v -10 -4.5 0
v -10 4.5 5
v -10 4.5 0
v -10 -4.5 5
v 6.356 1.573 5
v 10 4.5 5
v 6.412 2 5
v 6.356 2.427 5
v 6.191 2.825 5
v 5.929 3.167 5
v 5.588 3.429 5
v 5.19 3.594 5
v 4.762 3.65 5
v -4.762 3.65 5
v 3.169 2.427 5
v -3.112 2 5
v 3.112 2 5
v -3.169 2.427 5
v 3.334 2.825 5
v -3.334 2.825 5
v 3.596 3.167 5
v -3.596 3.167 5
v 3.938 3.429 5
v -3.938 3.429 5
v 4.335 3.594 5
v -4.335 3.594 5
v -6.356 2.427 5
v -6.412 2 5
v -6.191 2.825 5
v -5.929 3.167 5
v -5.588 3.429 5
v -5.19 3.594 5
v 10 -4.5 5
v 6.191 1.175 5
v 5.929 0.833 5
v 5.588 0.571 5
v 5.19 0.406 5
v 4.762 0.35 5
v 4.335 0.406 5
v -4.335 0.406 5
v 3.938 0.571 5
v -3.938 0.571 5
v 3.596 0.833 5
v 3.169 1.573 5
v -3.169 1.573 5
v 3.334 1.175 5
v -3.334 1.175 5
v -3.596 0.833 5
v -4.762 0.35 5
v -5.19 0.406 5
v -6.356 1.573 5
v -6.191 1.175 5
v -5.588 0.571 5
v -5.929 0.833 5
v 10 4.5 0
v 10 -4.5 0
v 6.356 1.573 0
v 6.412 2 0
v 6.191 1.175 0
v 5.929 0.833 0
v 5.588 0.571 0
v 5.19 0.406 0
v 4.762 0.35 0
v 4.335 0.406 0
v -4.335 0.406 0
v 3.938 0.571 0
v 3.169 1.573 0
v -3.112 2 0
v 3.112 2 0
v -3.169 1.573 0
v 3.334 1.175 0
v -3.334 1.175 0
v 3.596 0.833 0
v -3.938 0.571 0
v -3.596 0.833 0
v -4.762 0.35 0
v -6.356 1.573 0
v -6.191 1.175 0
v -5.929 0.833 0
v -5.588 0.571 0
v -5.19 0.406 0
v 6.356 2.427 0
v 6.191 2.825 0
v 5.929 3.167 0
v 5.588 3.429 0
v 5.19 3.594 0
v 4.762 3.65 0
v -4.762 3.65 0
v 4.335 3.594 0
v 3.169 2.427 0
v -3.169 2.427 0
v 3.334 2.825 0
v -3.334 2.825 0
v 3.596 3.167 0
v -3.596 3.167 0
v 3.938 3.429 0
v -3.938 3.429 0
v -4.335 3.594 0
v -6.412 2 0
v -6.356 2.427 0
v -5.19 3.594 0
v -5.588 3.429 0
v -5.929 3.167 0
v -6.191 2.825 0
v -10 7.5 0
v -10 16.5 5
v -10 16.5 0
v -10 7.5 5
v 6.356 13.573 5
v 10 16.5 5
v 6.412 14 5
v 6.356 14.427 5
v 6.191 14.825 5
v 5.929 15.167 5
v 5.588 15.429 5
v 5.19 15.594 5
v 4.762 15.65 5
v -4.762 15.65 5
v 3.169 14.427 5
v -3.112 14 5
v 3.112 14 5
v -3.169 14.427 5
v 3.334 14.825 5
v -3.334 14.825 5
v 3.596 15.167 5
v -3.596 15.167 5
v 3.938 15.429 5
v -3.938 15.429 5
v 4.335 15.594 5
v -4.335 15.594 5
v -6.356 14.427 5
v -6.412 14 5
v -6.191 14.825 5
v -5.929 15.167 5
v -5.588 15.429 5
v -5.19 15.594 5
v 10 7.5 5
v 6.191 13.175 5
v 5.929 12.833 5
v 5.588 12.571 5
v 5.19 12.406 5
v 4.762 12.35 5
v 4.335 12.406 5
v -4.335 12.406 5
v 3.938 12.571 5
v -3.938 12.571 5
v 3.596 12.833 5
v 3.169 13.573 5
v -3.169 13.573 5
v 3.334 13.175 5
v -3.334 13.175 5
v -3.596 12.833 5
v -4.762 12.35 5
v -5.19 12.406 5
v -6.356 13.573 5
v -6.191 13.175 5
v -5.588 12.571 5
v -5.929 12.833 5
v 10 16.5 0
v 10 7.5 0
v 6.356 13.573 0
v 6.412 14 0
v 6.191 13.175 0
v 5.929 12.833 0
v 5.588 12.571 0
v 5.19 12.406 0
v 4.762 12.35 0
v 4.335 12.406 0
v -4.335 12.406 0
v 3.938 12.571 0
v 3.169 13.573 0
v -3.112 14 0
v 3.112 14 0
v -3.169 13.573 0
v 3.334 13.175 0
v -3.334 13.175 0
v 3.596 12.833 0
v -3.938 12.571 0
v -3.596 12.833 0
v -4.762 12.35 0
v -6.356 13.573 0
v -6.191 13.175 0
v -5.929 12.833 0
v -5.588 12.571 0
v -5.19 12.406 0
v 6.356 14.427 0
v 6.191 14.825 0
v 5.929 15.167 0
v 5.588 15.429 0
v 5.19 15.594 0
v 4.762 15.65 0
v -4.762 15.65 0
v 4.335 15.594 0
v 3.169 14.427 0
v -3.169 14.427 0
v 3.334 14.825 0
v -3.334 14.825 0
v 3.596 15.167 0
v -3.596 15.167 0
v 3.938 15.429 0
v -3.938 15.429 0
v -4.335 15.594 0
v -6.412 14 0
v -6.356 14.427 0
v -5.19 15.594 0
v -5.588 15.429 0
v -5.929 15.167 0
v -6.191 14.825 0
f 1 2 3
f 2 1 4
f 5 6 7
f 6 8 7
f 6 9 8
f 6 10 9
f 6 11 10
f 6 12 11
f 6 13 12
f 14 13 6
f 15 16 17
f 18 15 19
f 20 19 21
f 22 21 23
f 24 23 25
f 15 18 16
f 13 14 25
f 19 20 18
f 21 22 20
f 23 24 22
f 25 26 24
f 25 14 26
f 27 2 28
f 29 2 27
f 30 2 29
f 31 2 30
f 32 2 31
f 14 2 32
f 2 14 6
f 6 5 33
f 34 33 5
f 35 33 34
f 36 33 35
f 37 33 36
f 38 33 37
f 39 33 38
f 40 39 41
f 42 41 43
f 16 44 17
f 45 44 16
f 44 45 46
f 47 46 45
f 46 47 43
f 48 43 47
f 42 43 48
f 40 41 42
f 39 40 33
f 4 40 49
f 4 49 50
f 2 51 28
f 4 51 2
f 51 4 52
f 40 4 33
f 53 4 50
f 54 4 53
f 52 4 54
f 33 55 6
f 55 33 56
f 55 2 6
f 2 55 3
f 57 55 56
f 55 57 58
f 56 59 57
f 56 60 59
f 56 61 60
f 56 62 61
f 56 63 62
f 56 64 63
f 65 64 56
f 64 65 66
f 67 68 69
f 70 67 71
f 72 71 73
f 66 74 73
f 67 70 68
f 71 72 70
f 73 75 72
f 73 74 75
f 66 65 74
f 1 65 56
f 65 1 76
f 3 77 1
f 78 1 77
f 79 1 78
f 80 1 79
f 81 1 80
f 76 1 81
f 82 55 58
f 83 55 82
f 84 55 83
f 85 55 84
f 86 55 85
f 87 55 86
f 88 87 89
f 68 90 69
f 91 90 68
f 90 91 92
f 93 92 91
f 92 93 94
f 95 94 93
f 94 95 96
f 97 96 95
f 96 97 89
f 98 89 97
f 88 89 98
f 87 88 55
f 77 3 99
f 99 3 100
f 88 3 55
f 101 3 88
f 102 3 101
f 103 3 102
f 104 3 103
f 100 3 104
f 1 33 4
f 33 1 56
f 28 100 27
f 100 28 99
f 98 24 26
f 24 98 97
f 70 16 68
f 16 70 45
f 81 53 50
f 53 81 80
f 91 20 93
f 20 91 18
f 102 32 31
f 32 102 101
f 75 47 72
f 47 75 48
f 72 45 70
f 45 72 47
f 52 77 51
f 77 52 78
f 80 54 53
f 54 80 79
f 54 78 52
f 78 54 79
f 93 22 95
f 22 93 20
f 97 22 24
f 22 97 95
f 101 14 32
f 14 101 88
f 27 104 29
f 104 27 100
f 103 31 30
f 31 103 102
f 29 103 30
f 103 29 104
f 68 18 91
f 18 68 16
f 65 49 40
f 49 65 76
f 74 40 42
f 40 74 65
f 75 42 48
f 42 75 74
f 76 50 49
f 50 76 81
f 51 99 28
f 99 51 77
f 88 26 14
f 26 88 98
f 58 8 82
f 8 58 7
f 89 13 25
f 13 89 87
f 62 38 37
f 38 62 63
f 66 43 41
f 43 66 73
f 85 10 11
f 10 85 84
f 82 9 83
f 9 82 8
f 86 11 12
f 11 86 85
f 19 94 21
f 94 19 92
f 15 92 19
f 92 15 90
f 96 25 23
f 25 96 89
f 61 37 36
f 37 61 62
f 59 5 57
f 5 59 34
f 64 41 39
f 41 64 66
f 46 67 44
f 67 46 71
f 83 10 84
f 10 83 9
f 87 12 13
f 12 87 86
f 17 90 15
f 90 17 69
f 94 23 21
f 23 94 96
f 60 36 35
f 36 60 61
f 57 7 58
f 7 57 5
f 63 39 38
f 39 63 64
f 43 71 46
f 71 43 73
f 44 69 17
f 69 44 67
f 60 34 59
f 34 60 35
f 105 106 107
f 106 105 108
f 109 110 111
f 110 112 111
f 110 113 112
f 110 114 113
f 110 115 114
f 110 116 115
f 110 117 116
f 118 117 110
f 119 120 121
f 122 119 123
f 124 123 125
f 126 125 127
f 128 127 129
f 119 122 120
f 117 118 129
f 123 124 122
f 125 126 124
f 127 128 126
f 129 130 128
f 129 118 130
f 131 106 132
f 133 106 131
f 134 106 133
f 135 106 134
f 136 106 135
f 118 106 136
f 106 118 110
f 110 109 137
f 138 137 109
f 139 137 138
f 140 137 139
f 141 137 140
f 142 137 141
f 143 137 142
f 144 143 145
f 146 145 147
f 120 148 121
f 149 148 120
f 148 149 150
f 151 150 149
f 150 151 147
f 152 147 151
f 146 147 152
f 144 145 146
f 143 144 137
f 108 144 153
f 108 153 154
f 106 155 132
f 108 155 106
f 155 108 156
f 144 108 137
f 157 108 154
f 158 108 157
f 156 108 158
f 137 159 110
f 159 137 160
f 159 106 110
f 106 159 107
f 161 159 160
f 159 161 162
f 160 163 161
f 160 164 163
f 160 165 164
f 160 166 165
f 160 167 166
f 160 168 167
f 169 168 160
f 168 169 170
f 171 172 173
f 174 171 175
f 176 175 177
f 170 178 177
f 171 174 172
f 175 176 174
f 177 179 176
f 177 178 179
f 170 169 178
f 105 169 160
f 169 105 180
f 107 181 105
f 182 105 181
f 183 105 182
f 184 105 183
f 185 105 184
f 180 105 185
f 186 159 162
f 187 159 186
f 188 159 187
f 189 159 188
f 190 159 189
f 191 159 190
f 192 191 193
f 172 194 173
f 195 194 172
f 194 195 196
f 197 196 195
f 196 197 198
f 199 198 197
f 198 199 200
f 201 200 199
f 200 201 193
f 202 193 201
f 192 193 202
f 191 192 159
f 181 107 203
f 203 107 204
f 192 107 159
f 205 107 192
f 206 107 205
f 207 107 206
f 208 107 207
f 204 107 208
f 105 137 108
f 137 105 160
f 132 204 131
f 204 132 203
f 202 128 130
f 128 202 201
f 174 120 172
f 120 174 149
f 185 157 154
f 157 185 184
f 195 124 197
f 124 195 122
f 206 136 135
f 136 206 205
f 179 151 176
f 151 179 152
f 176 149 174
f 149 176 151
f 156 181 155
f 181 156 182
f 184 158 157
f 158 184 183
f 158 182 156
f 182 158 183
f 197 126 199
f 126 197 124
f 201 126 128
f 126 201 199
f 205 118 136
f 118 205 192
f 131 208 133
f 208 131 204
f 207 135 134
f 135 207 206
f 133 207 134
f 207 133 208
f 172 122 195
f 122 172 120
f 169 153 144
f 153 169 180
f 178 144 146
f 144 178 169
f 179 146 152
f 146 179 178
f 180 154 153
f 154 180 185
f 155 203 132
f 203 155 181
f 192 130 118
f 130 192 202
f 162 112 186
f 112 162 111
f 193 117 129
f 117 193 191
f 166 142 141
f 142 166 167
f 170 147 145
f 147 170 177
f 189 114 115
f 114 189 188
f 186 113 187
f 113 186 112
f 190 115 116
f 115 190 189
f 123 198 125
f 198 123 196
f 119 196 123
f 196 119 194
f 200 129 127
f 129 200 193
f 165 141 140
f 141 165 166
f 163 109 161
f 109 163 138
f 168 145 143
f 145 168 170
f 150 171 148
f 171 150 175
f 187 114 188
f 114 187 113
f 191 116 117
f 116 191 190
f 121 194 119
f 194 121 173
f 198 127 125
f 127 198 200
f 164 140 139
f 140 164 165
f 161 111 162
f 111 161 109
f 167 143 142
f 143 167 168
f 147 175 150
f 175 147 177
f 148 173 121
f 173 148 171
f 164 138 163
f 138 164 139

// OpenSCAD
// (CC-BY-SA) h.zeller@acm.org
// The x-switch is missing the rail, so there needs to be a little spacer
// underneath.

$fn=24;
epsilon=0.02;

module spacer(thick=5,hole_dist=3/8*25.4,hole_dia=3.3,hole_offset=2) {
    difference() {
	translate([0,0,thick/2]) cube([20,9, thick], center=true);
	translate([-hole_dist/2,hole_offset,-epsilon]) cylinder(r=hole_dia/2, h=thick+2*epsilon);
	translate([hole_dist/2,hole_offset,-epsilon]) cylinder(r=hole_dia/2, h=thick+2*epsilon);
    }
}

spacer();
translate([0,12,0]) spacer();
